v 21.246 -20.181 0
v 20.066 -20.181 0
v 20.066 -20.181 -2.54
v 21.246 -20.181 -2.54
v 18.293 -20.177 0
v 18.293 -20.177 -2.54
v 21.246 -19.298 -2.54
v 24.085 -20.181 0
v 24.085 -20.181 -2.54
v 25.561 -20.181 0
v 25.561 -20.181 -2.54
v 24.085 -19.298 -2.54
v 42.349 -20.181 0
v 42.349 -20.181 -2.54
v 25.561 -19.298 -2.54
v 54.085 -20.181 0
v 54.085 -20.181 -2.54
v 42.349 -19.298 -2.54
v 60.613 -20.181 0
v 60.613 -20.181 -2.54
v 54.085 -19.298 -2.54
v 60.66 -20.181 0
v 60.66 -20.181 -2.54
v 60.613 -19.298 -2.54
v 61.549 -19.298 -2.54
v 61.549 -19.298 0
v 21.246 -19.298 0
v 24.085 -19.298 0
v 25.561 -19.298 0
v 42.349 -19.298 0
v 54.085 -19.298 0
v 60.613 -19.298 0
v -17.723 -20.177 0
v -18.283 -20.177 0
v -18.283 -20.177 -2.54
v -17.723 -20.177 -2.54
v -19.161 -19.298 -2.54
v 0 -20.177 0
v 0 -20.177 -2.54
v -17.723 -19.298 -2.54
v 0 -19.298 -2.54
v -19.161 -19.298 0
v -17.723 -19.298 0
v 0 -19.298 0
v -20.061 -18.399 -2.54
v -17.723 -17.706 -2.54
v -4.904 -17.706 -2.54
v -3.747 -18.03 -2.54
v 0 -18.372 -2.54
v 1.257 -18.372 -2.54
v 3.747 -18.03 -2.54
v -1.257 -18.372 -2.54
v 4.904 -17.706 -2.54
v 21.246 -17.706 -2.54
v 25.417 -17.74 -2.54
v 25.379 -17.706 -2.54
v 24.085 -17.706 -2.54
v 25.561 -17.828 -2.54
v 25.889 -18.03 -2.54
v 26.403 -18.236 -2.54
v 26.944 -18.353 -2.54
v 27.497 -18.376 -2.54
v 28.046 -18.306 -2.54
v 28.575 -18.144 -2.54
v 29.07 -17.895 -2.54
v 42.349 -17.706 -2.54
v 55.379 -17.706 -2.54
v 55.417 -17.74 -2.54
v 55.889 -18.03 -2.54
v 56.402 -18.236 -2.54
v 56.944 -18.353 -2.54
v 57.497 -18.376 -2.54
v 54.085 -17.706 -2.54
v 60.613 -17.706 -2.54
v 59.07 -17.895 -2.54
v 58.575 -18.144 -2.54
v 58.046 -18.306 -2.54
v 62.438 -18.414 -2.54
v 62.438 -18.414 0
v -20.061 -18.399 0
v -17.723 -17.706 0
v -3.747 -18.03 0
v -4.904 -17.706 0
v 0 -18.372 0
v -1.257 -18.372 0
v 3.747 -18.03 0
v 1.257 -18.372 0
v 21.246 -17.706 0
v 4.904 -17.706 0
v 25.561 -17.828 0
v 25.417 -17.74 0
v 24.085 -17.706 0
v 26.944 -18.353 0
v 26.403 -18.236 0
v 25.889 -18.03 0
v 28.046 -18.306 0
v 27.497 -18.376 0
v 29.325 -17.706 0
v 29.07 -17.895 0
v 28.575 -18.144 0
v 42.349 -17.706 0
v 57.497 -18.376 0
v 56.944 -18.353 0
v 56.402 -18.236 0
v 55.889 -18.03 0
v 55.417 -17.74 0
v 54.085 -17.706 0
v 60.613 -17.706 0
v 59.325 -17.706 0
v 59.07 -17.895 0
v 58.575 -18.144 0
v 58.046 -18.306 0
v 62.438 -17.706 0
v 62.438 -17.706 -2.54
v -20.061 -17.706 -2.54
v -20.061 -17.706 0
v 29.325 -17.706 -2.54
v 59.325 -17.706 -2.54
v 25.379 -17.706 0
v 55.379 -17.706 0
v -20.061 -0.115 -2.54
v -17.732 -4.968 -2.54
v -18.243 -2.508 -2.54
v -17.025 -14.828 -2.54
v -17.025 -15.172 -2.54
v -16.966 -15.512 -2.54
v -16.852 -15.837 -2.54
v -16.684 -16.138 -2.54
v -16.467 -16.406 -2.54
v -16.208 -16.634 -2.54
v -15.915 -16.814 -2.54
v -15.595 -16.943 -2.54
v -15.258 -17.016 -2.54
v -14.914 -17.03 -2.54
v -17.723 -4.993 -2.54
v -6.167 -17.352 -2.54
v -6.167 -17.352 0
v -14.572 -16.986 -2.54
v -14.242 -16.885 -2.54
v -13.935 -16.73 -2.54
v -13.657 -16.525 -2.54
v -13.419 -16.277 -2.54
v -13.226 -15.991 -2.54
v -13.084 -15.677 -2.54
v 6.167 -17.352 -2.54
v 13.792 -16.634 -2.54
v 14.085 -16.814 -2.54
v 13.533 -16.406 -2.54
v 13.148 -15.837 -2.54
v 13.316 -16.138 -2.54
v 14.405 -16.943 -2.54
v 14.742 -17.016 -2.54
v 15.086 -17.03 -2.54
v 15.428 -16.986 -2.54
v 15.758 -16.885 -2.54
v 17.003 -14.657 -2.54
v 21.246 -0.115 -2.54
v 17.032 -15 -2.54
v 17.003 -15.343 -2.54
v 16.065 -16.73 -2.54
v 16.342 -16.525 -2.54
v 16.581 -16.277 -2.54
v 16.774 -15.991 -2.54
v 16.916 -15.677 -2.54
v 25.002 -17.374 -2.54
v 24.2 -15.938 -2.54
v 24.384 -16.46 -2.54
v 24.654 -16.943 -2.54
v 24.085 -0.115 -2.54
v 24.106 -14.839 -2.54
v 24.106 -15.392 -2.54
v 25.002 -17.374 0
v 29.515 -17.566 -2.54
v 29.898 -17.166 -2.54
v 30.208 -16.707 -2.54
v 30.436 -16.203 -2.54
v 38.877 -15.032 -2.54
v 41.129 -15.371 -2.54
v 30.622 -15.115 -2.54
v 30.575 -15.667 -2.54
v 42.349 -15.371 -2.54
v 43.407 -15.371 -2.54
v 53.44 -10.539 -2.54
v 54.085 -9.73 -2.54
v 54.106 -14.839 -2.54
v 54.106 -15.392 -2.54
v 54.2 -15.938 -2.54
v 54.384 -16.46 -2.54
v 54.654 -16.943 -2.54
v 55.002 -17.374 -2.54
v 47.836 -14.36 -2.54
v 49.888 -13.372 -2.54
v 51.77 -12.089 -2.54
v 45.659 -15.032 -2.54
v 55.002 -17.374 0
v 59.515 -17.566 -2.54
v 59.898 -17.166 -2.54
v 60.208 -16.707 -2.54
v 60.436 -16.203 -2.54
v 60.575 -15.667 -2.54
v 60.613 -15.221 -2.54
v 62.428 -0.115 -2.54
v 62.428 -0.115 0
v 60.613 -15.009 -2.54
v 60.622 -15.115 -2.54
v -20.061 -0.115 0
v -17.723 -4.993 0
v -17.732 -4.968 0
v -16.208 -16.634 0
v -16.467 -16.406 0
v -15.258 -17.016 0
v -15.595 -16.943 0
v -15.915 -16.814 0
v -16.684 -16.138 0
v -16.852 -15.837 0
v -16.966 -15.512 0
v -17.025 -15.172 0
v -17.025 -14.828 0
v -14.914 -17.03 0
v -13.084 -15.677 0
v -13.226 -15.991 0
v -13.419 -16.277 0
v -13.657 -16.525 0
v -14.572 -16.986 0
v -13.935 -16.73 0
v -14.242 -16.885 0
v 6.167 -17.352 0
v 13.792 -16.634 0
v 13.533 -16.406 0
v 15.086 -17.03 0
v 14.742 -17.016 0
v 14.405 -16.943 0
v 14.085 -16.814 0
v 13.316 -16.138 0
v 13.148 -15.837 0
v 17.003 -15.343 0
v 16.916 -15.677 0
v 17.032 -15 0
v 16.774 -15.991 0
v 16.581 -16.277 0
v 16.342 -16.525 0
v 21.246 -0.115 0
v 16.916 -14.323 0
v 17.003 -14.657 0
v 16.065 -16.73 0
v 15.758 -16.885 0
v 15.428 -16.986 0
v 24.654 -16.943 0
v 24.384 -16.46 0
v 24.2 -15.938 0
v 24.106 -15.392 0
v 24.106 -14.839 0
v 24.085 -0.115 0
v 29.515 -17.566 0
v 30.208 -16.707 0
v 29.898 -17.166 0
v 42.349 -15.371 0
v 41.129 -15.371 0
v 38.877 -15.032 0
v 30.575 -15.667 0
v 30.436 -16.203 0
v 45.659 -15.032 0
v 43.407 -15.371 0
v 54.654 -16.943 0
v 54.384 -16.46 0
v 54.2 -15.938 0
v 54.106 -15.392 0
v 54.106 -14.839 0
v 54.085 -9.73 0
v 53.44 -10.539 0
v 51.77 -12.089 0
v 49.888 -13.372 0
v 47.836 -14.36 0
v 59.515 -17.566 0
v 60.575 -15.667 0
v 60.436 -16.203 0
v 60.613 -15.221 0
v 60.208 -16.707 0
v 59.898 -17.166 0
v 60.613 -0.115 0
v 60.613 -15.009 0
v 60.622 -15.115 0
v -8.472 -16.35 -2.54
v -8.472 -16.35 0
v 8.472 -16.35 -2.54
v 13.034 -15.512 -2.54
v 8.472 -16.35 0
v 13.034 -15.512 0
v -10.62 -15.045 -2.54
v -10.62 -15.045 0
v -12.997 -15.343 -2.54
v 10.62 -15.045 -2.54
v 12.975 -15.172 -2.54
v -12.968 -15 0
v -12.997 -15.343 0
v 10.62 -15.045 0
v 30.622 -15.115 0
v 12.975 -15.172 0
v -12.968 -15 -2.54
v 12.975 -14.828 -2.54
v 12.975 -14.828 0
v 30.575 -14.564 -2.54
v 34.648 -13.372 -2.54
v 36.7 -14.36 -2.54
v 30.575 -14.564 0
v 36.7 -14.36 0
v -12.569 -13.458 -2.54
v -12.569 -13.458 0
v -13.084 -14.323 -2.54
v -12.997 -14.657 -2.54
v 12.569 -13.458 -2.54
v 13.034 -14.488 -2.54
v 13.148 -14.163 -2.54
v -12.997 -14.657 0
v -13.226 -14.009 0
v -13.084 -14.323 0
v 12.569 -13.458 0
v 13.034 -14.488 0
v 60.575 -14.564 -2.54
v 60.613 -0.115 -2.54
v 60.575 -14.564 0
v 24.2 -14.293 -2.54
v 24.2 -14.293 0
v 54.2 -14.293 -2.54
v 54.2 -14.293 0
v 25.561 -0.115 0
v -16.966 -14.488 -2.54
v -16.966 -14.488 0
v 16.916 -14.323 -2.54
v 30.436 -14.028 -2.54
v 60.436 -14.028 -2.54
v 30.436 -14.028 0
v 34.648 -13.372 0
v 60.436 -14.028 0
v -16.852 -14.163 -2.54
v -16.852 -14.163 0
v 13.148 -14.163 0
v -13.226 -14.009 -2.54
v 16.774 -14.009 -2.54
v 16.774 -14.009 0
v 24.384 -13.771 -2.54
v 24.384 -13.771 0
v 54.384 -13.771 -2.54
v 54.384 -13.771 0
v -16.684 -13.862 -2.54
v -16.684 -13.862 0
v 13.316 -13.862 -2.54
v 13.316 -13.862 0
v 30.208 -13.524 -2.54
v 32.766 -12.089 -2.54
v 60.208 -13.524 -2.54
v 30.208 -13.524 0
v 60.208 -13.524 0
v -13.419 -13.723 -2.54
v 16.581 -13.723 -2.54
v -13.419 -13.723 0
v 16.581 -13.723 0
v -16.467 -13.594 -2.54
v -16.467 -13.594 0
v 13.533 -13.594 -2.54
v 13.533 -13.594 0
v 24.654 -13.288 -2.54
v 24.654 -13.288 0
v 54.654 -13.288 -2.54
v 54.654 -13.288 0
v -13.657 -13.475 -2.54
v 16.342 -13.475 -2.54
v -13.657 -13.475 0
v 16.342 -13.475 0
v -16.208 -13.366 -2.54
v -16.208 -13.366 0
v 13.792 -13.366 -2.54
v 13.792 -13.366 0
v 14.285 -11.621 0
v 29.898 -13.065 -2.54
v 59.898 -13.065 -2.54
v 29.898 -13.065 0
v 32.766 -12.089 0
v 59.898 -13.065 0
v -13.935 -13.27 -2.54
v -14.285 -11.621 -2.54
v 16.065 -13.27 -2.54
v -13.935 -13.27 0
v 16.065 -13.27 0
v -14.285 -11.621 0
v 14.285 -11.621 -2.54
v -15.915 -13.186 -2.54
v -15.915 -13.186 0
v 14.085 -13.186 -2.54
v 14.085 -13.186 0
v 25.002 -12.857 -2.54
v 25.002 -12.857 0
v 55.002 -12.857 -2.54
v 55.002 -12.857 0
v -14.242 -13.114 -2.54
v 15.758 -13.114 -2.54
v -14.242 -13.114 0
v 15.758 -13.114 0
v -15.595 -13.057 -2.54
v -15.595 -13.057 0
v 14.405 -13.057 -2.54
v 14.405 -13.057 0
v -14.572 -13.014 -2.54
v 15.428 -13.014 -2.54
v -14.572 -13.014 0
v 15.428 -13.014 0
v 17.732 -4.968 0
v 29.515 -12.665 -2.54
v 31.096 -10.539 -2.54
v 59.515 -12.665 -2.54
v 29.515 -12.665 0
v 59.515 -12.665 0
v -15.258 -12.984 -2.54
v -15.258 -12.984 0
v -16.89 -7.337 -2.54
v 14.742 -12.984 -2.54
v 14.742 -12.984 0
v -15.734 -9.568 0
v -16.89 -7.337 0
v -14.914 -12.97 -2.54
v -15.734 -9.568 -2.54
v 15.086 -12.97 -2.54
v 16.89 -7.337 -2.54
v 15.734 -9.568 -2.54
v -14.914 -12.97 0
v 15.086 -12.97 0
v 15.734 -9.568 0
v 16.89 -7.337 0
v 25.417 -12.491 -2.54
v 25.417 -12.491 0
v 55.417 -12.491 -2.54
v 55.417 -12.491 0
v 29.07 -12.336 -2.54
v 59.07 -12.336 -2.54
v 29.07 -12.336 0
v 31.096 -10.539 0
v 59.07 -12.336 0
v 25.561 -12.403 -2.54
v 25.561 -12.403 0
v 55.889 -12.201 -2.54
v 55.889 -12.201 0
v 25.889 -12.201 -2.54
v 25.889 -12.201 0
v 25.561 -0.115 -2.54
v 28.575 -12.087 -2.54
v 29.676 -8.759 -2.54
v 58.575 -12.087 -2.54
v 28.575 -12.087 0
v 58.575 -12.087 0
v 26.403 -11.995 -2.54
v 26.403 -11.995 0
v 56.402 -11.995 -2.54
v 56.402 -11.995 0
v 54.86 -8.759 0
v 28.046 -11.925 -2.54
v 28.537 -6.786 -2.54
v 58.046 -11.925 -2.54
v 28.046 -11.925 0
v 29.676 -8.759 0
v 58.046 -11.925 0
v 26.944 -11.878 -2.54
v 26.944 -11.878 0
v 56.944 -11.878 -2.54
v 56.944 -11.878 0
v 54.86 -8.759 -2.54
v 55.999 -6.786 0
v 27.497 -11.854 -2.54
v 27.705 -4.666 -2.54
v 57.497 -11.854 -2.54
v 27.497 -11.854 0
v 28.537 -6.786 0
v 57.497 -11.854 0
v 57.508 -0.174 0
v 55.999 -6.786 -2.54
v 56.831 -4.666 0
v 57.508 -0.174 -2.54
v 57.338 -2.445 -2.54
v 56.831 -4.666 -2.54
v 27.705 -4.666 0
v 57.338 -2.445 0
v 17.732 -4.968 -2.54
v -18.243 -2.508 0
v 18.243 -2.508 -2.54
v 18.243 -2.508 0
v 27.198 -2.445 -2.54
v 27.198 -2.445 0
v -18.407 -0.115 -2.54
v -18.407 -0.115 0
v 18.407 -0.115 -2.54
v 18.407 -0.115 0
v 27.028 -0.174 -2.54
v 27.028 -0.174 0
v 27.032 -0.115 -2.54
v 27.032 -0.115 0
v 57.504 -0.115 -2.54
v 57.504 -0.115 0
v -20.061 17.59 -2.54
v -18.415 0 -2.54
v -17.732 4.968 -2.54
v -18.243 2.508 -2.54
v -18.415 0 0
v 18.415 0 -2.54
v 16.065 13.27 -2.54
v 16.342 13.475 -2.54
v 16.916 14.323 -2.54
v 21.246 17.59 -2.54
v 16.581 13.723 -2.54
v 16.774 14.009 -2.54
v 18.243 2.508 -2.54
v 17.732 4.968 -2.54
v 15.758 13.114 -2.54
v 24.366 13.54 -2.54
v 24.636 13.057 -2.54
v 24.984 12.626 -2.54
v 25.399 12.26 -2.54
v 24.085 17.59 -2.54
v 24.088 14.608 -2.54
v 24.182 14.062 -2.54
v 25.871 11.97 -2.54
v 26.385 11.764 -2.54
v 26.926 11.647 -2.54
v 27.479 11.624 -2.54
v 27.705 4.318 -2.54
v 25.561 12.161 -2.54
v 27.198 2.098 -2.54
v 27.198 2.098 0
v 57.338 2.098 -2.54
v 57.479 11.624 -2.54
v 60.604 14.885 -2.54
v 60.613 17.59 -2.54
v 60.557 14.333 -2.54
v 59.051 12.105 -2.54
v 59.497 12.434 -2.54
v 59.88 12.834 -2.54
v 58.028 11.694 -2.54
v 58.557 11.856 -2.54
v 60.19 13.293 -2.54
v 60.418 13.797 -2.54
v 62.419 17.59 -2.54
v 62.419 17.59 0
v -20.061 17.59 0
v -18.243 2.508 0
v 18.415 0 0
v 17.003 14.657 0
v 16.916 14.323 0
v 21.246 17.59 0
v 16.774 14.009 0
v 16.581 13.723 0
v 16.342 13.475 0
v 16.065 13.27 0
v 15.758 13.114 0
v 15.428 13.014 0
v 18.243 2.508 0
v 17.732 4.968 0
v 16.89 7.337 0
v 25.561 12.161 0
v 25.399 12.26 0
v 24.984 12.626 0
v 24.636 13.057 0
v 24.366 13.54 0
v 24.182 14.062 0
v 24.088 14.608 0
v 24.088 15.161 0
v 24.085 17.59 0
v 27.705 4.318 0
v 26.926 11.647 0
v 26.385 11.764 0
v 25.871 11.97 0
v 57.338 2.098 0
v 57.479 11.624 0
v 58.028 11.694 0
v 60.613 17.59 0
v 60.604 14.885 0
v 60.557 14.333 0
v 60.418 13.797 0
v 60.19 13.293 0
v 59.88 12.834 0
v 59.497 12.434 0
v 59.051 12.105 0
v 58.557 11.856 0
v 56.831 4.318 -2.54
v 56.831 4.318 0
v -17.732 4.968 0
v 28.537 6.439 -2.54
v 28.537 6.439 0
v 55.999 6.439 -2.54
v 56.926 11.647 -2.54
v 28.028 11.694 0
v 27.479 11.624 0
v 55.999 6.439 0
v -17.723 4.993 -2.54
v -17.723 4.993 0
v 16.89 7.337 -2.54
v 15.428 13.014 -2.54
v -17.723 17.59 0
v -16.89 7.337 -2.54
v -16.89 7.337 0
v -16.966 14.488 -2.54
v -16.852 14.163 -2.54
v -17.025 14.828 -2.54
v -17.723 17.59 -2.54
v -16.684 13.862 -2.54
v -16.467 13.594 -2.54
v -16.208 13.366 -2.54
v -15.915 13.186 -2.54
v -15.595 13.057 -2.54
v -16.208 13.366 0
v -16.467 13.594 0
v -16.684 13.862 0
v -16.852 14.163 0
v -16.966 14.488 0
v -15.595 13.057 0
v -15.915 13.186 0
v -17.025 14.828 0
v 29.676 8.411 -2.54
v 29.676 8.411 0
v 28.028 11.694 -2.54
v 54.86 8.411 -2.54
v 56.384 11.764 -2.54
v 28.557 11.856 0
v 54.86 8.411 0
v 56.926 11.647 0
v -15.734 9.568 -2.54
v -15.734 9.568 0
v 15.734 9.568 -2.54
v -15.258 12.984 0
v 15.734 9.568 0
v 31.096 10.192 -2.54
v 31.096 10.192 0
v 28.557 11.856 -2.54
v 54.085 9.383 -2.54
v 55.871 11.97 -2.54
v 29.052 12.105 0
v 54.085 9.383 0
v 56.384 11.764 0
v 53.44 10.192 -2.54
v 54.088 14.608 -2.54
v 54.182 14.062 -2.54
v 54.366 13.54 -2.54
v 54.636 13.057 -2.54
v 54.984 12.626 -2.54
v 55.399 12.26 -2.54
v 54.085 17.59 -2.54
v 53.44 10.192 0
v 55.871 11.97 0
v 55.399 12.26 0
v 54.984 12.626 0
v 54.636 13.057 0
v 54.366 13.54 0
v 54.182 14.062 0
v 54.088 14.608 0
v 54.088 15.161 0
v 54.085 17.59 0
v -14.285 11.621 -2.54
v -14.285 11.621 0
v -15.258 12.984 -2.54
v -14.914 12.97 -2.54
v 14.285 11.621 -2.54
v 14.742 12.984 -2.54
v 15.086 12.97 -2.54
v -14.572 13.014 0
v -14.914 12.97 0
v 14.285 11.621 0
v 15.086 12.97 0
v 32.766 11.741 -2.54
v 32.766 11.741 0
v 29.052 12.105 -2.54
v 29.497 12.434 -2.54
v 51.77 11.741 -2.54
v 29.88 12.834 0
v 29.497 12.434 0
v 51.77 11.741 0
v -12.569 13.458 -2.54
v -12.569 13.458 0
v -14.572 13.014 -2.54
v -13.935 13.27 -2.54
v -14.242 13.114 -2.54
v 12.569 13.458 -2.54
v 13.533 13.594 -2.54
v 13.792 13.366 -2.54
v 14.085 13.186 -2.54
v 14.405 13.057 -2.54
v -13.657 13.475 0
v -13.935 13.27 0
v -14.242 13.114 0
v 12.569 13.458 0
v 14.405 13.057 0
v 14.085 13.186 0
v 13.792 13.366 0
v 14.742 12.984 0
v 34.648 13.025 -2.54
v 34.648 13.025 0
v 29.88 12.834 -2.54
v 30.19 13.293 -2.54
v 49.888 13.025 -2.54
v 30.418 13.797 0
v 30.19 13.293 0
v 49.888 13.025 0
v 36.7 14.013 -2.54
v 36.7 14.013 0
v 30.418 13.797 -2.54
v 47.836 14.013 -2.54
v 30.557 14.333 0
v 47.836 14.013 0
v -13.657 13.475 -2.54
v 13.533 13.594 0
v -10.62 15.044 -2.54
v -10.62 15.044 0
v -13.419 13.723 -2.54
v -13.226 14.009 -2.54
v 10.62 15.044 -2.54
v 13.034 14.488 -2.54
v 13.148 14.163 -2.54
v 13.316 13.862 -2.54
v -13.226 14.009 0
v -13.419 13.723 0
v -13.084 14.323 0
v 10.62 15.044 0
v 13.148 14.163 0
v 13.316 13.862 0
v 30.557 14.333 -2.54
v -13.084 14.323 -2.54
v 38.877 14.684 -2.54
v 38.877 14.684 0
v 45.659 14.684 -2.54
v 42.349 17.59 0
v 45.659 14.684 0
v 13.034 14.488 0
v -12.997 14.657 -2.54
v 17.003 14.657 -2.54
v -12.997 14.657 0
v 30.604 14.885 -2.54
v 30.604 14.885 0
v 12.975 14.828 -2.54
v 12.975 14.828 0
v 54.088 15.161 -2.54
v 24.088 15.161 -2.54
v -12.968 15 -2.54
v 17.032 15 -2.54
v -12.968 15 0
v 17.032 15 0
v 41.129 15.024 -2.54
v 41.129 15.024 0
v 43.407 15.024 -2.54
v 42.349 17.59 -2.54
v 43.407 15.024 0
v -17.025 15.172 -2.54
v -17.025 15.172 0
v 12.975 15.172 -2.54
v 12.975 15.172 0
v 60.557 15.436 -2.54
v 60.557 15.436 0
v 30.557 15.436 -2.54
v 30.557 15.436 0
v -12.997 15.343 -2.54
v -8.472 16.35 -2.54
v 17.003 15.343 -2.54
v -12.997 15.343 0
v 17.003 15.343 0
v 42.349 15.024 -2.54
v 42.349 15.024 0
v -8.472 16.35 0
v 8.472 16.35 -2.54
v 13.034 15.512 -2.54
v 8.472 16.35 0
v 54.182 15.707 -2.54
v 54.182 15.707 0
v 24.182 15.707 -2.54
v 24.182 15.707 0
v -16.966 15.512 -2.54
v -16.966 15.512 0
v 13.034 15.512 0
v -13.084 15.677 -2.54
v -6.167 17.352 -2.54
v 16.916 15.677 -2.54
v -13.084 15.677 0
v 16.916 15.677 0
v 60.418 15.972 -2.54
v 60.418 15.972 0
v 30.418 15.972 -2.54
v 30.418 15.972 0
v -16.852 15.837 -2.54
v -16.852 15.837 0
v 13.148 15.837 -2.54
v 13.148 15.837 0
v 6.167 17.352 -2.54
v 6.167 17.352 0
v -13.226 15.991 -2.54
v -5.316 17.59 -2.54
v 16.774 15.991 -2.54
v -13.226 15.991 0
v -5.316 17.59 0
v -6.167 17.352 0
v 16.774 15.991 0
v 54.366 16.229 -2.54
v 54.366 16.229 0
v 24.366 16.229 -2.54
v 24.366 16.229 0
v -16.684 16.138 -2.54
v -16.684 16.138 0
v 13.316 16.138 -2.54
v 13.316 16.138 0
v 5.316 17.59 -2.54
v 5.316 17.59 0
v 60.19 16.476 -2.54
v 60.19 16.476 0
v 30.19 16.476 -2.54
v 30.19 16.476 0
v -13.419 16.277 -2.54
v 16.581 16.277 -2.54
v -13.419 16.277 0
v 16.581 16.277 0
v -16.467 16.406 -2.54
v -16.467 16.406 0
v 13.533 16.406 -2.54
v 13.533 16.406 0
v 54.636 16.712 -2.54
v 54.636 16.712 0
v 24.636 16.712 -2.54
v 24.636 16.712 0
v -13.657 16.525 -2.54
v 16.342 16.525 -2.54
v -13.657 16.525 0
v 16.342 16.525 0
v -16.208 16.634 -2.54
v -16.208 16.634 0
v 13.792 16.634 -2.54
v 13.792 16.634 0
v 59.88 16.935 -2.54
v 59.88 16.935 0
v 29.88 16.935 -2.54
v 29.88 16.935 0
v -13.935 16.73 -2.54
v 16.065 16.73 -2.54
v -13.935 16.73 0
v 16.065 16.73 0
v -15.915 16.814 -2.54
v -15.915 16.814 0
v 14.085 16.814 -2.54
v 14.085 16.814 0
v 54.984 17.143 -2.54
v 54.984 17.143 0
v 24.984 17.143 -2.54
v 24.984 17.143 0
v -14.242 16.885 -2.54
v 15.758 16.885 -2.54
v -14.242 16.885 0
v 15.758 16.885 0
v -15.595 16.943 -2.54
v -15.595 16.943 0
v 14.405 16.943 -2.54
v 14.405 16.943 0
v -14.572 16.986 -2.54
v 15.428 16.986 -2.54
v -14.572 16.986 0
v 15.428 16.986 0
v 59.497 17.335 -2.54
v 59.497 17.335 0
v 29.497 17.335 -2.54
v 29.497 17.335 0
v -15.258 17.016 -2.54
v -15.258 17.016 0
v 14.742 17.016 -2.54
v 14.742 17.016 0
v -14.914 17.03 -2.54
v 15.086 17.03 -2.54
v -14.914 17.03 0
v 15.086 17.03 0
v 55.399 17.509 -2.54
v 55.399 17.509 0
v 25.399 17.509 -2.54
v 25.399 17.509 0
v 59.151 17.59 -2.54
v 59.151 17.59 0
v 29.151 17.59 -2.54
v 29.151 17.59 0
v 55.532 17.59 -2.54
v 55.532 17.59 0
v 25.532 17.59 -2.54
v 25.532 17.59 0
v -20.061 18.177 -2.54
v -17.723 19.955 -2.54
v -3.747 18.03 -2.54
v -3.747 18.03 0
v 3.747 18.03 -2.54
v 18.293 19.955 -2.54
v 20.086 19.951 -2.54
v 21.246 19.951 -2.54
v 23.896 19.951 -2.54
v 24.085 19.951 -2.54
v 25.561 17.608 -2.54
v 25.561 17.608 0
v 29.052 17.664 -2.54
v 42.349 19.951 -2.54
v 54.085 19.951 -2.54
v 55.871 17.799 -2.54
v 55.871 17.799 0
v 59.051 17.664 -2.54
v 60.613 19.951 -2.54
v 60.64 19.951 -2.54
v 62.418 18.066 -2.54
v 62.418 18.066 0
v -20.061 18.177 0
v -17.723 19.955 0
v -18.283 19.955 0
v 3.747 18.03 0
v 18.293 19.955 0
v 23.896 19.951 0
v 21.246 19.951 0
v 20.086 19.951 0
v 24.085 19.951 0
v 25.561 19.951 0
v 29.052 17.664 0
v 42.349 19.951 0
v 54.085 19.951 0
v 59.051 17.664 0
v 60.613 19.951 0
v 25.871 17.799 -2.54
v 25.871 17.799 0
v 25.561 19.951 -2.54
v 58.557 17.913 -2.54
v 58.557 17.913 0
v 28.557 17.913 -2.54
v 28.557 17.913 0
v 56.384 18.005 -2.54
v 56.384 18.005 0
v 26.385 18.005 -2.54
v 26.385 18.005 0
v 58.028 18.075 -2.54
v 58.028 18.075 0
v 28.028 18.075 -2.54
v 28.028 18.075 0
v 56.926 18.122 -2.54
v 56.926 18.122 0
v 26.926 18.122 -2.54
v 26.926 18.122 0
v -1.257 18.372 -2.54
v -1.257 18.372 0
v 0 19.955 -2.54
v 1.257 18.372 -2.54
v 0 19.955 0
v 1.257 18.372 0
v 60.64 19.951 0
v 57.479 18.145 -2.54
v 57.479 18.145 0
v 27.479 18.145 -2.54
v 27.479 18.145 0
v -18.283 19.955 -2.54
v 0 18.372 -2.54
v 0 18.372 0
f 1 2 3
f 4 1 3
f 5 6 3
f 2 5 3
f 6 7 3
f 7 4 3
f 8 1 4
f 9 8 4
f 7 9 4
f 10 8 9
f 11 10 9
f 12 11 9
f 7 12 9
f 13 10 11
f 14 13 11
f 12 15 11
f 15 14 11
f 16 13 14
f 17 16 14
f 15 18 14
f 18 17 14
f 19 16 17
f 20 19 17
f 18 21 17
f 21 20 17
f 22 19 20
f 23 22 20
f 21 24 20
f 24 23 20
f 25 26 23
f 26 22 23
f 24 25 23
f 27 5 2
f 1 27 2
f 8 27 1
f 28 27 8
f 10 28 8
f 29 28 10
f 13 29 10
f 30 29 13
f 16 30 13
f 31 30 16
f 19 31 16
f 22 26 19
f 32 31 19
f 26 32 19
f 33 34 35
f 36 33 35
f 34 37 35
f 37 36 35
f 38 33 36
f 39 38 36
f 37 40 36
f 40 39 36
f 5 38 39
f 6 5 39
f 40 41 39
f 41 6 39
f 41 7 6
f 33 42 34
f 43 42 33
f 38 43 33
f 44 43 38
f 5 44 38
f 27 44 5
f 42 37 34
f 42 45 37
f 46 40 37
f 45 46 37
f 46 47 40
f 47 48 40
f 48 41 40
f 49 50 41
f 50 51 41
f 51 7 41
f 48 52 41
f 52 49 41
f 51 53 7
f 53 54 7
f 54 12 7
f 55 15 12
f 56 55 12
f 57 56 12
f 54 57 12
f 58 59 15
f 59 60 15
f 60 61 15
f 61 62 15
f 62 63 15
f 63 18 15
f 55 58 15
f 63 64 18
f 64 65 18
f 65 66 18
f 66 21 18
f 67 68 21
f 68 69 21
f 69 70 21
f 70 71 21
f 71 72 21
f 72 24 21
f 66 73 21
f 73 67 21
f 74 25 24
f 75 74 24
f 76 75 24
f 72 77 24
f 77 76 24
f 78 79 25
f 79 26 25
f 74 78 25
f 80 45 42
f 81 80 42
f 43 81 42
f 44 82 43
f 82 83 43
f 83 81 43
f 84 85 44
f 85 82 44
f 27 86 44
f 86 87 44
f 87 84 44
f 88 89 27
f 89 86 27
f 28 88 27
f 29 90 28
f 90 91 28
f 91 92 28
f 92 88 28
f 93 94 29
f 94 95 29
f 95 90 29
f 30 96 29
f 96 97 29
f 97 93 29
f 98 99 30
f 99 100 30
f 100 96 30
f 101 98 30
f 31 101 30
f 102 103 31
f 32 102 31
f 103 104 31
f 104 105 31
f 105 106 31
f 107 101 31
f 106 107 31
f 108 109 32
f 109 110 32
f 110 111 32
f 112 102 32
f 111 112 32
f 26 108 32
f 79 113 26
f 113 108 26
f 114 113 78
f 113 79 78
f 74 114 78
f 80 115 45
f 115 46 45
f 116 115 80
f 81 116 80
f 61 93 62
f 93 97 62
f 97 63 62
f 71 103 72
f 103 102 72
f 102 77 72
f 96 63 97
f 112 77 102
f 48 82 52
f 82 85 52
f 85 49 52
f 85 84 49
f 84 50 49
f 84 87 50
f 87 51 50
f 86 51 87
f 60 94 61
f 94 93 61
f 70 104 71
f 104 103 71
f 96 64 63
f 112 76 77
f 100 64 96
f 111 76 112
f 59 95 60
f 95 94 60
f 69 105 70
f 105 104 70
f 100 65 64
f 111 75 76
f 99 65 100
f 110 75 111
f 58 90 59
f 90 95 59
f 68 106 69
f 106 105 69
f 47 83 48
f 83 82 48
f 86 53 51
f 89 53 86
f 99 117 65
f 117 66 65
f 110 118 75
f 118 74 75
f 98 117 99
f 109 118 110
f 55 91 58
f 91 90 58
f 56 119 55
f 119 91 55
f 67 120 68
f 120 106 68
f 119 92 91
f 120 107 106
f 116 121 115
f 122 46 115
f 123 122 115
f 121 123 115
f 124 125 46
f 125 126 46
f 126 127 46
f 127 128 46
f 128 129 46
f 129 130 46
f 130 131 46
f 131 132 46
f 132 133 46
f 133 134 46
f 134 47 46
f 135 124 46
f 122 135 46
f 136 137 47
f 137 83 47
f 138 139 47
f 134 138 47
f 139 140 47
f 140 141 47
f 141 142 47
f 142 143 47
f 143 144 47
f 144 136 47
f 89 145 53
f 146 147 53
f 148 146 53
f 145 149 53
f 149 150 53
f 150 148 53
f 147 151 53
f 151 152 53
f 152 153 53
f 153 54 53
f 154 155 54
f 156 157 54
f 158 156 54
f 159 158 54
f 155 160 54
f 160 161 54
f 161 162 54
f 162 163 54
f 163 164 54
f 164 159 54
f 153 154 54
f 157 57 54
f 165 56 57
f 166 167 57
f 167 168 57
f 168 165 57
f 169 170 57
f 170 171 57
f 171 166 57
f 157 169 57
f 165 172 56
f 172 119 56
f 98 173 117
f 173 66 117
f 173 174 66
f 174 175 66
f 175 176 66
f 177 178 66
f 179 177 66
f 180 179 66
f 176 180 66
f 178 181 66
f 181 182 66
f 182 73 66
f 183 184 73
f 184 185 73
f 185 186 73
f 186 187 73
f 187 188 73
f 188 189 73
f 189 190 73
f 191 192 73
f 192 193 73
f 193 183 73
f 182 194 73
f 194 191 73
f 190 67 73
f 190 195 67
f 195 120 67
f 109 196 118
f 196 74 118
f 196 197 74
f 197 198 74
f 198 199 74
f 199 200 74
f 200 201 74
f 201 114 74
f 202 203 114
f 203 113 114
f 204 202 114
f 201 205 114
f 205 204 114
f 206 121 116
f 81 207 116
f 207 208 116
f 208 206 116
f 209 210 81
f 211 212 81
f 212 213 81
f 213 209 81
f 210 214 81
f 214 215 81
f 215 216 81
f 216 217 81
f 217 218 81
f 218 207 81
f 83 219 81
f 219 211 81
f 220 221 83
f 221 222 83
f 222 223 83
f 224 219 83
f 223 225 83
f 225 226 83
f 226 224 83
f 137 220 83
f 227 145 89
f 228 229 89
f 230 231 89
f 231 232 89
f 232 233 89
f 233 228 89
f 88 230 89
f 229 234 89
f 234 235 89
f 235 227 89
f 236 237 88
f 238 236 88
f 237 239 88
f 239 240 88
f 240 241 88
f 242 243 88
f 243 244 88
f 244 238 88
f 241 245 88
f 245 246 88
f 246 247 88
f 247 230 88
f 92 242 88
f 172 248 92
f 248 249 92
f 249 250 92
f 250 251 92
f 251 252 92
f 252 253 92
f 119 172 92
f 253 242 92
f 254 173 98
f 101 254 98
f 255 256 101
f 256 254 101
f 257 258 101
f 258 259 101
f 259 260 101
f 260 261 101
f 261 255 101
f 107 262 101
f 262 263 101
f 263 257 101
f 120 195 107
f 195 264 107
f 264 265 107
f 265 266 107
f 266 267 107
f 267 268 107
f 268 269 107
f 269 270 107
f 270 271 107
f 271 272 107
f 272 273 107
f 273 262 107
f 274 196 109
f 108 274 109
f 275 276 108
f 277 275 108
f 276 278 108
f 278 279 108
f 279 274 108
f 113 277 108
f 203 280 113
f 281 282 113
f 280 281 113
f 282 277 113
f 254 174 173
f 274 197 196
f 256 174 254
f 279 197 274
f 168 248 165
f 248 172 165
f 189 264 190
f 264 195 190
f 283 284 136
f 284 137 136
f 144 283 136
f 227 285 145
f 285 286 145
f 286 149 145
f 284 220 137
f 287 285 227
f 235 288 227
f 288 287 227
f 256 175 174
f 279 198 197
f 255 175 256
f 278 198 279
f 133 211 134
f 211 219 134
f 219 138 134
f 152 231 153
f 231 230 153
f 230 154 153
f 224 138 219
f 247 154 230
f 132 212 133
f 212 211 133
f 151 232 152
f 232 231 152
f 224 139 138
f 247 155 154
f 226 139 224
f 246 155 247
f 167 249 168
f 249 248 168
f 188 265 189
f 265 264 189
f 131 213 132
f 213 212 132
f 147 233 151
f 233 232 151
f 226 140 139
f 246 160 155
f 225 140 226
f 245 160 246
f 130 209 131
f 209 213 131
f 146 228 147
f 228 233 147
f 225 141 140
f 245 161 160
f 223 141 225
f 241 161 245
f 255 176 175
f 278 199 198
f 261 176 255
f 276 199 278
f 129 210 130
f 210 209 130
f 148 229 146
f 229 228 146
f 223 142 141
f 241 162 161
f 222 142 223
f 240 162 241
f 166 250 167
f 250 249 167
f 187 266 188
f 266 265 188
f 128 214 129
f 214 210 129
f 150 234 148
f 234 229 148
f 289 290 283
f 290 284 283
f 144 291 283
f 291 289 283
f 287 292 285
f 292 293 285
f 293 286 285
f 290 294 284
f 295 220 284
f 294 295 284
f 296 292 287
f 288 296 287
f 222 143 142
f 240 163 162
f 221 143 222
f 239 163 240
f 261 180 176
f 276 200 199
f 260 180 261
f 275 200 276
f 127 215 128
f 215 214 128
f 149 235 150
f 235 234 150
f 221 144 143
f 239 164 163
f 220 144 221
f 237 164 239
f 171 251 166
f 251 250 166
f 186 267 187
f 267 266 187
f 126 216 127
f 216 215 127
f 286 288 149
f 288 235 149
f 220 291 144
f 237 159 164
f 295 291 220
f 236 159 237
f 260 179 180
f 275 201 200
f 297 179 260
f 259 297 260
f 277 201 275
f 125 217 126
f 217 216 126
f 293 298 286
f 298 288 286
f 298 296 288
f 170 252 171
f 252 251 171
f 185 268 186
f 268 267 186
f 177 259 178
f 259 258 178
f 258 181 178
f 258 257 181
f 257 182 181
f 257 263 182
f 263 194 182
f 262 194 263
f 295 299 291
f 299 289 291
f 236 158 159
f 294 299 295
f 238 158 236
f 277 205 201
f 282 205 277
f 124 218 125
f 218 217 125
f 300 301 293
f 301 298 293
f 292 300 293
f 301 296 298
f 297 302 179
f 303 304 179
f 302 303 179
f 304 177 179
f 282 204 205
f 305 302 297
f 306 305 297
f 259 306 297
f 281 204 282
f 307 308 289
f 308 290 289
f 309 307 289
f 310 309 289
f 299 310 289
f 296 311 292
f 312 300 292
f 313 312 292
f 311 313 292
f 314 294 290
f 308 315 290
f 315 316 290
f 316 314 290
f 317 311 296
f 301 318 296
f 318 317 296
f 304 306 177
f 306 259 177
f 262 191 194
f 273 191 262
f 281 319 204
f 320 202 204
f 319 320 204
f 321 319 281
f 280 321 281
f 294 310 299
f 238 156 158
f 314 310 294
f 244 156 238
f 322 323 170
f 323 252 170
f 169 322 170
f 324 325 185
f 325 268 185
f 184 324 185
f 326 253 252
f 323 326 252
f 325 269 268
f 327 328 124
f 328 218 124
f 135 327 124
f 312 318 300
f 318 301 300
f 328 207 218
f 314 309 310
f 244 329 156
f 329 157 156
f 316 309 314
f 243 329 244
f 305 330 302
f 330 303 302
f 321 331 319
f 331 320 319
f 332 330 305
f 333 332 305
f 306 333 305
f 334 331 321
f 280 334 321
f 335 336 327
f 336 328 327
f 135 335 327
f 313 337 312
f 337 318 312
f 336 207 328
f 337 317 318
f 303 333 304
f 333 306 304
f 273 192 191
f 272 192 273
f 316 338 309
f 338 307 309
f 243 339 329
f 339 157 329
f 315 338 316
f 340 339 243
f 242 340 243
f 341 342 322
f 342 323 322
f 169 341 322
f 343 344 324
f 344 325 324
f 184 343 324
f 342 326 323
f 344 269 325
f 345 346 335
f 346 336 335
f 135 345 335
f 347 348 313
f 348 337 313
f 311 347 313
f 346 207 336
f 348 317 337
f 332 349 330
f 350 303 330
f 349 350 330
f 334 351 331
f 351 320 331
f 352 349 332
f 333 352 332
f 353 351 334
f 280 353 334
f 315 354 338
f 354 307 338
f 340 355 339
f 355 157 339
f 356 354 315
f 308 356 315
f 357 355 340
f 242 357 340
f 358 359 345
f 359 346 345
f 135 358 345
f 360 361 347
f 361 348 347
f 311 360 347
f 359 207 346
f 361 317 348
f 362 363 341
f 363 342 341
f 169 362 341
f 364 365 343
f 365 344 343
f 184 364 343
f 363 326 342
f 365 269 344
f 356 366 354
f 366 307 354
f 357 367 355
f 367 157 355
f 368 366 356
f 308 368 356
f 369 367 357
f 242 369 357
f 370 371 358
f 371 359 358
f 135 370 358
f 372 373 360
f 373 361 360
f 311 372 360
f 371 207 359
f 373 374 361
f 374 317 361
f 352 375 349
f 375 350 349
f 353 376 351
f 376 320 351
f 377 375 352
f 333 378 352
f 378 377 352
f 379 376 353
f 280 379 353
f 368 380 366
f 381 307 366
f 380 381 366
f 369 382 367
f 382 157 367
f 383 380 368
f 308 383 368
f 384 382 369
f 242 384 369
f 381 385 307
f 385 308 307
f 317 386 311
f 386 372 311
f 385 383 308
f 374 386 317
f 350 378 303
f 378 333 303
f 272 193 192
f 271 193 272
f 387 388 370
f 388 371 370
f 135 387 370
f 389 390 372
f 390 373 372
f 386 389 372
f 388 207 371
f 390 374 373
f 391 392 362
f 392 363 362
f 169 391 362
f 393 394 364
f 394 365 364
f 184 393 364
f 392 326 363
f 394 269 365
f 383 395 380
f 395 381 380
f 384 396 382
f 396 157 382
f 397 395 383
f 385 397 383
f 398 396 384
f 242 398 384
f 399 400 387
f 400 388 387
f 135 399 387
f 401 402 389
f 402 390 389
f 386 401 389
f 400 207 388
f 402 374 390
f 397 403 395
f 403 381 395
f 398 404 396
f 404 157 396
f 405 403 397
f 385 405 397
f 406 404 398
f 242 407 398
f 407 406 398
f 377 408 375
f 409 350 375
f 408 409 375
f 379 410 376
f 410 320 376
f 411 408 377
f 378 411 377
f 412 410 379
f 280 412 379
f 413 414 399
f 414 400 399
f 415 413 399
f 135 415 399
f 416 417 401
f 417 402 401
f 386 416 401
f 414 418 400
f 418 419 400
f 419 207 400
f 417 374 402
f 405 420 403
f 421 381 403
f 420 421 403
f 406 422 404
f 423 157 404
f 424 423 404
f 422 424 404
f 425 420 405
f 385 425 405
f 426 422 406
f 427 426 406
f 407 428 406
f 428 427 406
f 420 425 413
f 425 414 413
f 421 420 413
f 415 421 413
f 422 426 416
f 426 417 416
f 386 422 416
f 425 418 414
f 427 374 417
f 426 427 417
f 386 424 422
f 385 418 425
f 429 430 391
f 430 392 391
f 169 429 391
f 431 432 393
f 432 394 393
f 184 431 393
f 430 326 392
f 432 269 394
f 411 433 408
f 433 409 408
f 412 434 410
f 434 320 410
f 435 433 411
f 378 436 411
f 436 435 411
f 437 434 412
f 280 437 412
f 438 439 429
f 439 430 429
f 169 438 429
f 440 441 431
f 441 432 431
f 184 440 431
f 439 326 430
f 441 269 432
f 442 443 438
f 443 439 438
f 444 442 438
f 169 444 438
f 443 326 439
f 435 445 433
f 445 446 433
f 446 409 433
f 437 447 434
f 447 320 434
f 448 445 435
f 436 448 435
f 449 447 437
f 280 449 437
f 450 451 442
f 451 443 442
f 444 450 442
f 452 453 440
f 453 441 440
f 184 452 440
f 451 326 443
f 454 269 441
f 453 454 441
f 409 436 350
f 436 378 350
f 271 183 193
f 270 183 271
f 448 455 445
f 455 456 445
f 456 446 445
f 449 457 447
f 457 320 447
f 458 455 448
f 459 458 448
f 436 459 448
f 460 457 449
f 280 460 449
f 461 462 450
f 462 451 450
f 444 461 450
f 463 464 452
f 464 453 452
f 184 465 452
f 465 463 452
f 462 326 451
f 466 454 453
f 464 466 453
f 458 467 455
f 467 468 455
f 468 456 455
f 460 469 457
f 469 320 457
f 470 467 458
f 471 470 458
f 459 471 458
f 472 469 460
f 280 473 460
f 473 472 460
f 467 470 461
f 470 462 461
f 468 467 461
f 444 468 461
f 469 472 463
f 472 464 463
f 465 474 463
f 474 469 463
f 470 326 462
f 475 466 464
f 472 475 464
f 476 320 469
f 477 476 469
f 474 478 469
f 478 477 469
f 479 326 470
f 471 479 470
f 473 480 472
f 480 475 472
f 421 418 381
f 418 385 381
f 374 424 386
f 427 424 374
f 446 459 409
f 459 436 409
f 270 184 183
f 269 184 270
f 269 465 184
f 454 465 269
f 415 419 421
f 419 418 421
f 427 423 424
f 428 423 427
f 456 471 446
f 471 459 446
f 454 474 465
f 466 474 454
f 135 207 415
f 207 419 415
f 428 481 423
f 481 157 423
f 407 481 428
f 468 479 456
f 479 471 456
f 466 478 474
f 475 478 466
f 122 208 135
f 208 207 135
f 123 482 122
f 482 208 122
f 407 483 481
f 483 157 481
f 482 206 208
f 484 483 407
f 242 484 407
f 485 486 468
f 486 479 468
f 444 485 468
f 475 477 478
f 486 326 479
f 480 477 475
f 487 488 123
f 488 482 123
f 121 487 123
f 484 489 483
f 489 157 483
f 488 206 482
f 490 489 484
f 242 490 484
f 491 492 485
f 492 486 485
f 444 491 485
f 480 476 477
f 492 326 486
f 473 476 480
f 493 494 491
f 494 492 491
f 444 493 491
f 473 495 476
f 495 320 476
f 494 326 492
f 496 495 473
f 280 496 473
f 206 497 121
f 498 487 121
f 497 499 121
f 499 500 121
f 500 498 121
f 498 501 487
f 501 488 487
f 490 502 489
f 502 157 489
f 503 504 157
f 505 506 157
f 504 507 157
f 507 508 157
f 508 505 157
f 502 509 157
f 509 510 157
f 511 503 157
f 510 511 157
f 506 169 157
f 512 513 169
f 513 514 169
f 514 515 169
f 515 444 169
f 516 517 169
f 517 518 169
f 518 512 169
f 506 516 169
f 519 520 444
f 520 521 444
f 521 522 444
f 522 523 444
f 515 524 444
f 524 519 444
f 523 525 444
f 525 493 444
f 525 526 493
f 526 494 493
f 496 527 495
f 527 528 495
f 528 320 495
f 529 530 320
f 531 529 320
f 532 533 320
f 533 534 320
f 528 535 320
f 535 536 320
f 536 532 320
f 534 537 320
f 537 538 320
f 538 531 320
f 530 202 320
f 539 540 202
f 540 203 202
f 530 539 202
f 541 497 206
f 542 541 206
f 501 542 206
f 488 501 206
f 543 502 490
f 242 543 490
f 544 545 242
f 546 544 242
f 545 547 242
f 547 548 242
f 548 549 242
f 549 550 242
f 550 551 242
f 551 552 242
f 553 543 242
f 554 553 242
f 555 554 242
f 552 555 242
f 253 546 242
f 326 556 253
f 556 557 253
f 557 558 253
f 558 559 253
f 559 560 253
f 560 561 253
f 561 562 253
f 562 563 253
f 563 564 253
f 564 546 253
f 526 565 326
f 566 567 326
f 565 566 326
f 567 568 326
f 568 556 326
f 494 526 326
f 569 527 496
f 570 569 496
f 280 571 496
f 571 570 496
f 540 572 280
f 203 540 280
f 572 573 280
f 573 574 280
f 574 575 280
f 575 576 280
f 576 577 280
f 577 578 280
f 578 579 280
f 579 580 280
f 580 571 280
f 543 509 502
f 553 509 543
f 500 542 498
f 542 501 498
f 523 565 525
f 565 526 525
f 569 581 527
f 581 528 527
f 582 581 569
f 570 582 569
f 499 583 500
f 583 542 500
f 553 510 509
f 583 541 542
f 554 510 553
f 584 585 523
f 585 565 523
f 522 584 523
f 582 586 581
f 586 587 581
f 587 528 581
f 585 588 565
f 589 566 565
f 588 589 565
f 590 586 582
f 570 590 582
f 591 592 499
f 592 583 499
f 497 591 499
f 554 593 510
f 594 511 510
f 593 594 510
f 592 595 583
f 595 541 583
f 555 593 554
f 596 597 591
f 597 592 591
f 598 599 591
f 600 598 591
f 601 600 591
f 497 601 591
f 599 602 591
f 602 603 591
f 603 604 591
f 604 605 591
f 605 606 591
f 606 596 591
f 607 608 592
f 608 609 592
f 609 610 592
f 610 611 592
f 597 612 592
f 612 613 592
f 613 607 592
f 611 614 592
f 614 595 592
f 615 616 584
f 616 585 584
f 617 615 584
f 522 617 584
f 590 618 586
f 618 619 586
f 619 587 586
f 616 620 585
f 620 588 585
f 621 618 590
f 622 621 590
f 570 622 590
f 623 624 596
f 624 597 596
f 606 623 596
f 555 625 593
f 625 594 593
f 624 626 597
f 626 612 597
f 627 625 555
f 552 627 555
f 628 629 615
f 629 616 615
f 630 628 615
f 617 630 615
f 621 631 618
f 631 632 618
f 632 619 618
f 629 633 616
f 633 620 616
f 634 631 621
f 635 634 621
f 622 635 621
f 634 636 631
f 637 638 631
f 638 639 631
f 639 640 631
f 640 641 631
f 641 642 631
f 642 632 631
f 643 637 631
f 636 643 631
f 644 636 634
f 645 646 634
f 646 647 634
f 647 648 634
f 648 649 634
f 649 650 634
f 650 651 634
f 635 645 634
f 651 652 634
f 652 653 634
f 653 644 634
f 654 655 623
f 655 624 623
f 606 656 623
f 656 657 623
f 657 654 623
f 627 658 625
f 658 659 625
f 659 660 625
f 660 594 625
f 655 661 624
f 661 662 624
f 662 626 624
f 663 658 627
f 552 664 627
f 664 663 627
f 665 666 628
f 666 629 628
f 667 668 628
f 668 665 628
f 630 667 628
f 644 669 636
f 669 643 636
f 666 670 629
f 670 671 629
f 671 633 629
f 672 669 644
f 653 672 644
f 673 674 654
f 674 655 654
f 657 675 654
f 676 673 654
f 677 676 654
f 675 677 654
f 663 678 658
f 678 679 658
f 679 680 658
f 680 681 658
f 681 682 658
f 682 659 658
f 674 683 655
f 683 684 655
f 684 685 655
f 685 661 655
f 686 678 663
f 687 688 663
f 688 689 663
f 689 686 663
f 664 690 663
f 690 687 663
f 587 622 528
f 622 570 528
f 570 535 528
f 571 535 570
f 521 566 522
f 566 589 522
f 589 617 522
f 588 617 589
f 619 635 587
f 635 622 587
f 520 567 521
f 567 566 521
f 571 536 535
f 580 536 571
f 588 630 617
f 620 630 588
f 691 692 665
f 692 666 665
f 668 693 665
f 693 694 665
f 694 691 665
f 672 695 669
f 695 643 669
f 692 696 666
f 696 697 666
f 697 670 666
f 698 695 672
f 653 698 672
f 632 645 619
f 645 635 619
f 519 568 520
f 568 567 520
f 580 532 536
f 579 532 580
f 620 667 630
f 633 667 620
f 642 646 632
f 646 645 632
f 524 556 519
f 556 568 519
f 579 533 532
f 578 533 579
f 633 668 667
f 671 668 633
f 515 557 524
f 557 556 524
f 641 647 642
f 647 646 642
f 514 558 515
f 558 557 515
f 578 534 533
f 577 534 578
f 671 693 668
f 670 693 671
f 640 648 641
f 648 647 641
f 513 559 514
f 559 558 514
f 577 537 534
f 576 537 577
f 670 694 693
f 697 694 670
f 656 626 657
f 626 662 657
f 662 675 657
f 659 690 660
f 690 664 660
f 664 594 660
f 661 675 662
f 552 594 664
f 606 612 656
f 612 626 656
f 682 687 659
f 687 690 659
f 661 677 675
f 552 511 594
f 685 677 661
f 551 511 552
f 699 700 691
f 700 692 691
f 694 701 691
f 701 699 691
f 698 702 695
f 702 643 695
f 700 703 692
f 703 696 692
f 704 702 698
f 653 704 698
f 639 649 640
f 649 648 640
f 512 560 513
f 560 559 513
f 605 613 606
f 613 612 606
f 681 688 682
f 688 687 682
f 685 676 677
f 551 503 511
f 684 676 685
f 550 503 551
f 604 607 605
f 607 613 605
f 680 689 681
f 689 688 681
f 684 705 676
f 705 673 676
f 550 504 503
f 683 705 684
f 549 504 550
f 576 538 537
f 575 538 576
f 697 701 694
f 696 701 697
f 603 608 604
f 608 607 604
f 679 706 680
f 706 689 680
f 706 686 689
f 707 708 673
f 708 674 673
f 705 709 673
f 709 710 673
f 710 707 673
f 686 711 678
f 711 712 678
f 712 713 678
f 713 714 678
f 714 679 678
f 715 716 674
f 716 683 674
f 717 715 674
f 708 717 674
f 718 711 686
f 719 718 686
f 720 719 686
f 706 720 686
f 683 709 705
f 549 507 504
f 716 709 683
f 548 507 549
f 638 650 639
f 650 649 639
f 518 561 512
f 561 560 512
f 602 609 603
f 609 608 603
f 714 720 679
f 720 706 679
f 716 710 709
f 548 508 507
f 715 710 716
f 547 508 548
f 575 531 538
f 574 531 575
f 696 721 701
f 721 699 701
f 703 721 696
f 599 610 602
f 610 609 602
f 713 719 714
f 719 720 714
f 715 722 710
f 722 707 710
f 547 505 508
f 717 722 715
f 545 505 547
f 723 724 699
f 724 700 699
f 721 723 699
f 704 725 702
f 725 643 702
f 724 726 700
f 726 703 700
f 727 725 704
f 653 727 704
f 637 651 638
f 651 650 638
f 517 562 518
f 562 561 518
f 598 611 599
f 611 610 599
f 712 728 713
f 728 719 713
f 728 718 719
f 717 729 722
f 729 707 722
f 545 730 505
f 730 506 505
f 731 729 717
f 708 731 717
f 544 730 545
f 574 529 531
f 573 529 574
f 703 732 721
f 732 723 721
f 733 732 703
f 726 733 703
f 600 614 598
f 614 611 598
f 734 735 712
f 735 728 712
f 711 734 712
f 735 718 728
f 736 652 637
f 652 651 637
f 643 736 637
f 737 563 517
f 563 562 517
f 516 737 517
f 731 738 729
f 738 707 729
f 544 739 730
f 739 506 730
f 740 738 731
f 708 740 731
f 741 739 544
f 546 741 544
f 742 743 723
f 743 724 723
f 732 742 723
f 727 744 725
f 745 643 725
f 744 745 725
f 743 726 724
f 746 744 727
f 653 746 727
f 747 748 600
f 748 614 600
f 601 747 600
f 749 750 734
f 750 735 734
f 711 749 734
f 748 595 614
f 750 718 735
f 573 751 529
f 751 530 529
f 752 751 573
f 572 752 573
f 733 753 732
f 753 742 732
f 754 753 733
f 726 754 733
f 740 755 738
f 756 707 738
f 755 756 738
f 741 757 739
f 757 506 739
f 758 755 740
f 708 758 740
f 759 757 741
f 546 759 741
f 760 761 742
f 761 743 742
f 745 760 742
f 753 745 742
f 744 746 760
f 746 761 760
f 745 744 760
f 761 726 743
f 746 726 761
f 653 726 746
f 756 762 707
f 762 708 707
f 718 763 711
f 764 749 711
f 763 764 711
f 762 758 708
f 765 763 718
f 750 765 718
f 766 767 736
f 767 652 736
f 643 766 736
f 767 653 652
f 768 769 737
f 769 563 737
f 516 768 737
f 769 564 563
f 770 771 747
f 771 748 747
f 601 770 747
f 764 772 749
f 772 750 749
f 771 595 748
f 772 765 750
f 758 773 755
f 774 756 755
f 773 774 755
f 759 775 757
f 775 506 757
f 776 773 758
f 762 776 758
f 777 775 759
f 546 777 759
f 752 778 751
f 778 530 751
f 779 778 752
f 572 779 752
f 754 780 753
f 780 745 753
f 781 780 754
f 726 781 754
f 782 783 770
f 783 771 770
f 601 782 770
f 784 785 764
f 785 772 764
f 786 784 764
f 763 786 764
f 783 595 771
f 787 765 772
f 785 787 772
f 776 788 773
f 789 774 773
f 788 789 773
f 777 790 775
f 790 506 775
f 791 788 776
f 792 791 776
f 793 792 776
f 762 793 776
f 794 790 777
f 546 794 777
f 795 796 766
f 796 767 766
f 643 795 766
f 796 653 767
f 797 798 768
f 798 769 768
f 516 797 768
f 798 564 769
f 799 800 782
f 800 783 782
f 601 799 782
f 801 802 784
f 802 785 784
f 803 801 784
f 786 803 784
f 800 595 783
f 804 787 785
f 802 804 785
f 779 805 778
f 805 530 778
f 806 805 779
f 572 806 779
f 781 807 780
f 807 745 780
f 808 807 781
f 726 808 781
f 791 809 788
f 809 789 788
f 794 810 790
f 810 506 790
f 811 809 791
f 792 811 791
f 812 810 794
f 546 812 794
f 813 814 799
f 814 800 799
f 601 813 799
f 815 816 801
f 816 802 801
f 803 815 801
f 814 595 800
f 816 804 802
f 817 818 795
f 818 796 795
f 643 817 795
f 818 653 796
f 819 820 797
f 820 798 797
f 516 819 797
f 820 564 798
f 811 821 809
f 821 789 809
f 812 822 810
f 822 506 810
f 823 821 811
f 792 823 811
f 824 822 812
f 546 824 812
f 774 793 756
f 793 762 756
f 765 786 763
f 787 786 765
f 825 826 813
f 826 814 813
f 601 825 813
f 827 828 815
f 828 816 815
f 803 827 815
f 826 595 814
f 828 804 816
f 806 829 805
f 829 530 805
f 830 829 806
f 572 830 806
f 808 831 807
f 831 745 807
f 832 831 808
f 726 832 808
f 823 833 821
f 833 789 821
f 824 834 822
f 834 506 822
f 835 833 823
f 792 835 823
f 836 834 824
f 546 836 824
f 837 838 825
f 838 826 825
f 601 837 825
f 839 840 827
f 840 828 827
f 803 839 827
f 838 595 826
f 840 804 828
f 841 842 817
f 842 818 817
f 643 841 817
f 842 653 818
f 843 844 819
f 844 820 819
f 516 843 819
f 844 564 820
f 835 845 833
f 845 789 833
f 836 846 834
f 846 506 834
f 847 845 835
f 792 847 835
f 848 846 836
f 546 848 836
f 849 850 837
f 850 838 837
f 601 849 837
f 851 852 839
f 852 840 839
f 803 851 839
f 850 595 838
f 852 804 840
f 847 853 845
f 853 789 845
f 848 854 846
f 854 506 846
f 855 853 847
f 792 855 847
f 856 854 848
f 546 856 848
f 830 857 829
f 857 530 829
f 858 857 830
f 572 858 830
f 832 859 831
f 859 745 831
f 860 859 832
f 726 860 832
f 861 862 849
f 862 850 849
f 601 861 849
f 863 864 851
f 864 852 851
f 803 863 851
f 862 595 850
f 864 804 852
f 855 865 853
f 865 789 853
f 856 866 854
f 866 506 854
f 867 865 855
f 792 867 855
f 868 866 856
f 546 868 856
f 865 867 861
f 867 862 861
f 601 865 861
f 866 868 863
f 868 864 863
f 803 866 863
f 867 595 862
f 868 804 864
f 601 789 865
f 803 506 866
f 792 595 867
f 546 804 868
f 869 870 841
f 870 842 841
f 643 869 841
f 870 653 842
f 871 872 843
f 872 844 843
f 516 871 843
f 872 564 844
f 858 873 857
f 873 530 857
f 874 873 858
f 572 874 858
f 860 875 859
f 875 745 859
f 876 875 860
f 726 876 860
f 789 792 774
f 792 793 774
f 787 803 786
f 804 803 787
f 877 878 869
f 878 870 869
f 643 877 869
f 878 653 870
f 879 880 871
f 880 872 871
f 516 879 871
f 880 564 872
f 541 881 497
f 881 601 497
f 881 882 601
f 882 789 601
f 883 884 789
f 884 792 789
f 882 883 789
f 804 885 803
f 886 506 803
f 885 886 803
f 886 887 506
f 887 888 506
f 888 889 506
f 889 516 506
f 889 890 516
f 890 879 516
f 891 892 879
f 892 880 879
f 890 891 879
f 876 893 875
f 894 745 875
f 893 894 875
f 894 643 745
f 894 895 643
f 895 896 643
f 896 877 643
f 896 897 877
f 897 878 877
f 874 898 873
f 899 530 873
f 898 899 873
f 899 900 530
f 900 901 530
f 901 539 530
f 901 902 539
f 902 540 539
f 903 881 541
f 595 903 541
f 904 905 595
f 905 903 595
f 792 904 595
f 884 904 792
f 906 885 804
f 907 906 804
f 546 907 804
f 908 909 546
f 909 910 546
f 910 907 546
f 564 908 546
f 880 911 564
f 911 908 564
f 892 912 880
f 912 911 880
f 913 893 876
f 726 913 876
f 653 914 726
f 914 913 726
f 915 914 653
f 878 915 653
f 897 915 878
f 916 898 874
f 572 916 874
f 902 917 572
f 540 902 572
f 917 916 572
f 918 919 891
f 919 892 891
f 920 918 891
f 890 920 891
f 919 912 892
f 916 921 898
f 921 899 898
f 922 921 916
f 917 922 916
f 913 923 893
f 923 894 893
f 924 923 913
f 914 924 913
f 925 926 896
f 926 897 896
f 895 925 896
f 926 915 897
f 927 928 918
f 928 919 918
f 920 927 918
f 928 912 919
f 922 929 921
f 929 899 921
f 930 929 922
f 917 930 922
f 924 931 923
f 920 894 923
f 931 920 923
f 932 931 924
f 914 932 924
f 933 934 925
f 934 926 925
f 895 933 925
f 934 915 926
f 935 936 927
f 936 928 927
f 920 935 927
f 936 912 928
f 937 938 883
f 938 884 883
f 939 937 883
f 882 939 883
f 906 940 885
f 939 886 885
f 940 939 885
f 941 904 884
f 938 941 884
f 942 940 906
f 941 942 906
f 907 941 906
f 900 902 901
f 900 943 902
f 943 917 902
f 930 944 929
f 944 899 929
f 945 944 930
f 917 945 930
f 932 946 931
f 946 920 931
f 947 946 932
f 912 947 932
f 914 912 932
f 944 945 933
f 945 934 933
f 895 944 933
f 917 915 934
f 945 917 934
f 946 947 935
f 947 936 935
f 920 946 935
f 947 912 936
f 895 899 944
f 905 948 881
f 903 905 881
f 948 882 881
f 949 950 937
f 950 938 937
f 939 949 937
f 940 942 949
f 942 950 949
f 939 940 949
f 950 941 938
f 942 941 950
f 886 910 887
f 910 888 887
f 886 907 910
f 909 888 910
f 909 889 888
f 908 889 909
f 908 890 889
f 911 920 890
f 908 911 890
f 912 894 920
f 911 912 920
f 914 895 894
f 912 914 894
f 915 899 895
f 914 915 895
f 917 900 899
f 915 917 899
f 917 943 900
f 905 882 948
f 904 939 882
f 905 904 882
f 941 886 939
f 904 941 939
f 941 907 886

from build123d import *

# Parameters (mm, degrees)
MODEL_R             = 2.032
MODEL_R_2           = 3.2639
MODEL_R_3           = 15.24
MODEL_R_4           = 18.415
BOSS_EXTRUDE1_DEPTH = 2.54


with BuildPart() as part:
    # Model → Boss-Extrude1 (new body)
    with BuildSketch(Plane.XY):
        Polygon((23.89577784, 19.950554749), (20.085777841, 19.950499596), (18.29294446, 19.955499209), (-18.28305554, 19.955499209), (-20.06105554, 18.177499209), (-20.06105554, -18.398500791), (-18.28305554, -20.176500791), (18.29294446, -20.176500791), (20.066, -20.181445251), (23.876, -20.181445251), (60.660238165, -20.181445251), (62.438238165, -18.413722656), (62.418460324, 18.066456797), (60.640460324, 19.950554749), align=None)
        with Locations((-14.99997, -14.99997)):
            Circle(MODEL_R, mode=Mode.SUBTRACT)
        with Locations((14.99997, -14.99997)):
            Circle(MODEL_R, mode=Mode.SUBTRACT)
        with Locations((27.358298165, -15.115415251)):
            Circle(MODEL_R_2, mode=Mode.SUBTRACT)
        with Locations((57.358238165, -15.115415251)):
            Circle(MODEL_R_2, mode=Mode.SUBTRACT)
        with Locations((42.268119082, -0.17363293)):
            Circle(MODEL_R_3, mode=Mode.SUBTRACT)
        Circle(MODEL_R_4, mode=Mode.SUBTRACT)
        with Locations((-14.99997, 14.99997)):
            Circle(MODEL_R, mode=Mode.SUBTRACT)
        with Locations((14.99997, 14.99997)):
            Circle(MODEL_R, mode=Mode.SUBTRACT)
        with Locations((27.340244675, 14.884524749)):
            Circle(MODEL_R_2, mode=Mode.SUBTRACT)
        with Locations((57.340184675, 14.884519317)):
            Circle(MODEL_R_2, mode=Mode.SUBTRACT)
    extrude(amount=-BOSS_EXTRUDE1_DEPTH)


solid = part.part
